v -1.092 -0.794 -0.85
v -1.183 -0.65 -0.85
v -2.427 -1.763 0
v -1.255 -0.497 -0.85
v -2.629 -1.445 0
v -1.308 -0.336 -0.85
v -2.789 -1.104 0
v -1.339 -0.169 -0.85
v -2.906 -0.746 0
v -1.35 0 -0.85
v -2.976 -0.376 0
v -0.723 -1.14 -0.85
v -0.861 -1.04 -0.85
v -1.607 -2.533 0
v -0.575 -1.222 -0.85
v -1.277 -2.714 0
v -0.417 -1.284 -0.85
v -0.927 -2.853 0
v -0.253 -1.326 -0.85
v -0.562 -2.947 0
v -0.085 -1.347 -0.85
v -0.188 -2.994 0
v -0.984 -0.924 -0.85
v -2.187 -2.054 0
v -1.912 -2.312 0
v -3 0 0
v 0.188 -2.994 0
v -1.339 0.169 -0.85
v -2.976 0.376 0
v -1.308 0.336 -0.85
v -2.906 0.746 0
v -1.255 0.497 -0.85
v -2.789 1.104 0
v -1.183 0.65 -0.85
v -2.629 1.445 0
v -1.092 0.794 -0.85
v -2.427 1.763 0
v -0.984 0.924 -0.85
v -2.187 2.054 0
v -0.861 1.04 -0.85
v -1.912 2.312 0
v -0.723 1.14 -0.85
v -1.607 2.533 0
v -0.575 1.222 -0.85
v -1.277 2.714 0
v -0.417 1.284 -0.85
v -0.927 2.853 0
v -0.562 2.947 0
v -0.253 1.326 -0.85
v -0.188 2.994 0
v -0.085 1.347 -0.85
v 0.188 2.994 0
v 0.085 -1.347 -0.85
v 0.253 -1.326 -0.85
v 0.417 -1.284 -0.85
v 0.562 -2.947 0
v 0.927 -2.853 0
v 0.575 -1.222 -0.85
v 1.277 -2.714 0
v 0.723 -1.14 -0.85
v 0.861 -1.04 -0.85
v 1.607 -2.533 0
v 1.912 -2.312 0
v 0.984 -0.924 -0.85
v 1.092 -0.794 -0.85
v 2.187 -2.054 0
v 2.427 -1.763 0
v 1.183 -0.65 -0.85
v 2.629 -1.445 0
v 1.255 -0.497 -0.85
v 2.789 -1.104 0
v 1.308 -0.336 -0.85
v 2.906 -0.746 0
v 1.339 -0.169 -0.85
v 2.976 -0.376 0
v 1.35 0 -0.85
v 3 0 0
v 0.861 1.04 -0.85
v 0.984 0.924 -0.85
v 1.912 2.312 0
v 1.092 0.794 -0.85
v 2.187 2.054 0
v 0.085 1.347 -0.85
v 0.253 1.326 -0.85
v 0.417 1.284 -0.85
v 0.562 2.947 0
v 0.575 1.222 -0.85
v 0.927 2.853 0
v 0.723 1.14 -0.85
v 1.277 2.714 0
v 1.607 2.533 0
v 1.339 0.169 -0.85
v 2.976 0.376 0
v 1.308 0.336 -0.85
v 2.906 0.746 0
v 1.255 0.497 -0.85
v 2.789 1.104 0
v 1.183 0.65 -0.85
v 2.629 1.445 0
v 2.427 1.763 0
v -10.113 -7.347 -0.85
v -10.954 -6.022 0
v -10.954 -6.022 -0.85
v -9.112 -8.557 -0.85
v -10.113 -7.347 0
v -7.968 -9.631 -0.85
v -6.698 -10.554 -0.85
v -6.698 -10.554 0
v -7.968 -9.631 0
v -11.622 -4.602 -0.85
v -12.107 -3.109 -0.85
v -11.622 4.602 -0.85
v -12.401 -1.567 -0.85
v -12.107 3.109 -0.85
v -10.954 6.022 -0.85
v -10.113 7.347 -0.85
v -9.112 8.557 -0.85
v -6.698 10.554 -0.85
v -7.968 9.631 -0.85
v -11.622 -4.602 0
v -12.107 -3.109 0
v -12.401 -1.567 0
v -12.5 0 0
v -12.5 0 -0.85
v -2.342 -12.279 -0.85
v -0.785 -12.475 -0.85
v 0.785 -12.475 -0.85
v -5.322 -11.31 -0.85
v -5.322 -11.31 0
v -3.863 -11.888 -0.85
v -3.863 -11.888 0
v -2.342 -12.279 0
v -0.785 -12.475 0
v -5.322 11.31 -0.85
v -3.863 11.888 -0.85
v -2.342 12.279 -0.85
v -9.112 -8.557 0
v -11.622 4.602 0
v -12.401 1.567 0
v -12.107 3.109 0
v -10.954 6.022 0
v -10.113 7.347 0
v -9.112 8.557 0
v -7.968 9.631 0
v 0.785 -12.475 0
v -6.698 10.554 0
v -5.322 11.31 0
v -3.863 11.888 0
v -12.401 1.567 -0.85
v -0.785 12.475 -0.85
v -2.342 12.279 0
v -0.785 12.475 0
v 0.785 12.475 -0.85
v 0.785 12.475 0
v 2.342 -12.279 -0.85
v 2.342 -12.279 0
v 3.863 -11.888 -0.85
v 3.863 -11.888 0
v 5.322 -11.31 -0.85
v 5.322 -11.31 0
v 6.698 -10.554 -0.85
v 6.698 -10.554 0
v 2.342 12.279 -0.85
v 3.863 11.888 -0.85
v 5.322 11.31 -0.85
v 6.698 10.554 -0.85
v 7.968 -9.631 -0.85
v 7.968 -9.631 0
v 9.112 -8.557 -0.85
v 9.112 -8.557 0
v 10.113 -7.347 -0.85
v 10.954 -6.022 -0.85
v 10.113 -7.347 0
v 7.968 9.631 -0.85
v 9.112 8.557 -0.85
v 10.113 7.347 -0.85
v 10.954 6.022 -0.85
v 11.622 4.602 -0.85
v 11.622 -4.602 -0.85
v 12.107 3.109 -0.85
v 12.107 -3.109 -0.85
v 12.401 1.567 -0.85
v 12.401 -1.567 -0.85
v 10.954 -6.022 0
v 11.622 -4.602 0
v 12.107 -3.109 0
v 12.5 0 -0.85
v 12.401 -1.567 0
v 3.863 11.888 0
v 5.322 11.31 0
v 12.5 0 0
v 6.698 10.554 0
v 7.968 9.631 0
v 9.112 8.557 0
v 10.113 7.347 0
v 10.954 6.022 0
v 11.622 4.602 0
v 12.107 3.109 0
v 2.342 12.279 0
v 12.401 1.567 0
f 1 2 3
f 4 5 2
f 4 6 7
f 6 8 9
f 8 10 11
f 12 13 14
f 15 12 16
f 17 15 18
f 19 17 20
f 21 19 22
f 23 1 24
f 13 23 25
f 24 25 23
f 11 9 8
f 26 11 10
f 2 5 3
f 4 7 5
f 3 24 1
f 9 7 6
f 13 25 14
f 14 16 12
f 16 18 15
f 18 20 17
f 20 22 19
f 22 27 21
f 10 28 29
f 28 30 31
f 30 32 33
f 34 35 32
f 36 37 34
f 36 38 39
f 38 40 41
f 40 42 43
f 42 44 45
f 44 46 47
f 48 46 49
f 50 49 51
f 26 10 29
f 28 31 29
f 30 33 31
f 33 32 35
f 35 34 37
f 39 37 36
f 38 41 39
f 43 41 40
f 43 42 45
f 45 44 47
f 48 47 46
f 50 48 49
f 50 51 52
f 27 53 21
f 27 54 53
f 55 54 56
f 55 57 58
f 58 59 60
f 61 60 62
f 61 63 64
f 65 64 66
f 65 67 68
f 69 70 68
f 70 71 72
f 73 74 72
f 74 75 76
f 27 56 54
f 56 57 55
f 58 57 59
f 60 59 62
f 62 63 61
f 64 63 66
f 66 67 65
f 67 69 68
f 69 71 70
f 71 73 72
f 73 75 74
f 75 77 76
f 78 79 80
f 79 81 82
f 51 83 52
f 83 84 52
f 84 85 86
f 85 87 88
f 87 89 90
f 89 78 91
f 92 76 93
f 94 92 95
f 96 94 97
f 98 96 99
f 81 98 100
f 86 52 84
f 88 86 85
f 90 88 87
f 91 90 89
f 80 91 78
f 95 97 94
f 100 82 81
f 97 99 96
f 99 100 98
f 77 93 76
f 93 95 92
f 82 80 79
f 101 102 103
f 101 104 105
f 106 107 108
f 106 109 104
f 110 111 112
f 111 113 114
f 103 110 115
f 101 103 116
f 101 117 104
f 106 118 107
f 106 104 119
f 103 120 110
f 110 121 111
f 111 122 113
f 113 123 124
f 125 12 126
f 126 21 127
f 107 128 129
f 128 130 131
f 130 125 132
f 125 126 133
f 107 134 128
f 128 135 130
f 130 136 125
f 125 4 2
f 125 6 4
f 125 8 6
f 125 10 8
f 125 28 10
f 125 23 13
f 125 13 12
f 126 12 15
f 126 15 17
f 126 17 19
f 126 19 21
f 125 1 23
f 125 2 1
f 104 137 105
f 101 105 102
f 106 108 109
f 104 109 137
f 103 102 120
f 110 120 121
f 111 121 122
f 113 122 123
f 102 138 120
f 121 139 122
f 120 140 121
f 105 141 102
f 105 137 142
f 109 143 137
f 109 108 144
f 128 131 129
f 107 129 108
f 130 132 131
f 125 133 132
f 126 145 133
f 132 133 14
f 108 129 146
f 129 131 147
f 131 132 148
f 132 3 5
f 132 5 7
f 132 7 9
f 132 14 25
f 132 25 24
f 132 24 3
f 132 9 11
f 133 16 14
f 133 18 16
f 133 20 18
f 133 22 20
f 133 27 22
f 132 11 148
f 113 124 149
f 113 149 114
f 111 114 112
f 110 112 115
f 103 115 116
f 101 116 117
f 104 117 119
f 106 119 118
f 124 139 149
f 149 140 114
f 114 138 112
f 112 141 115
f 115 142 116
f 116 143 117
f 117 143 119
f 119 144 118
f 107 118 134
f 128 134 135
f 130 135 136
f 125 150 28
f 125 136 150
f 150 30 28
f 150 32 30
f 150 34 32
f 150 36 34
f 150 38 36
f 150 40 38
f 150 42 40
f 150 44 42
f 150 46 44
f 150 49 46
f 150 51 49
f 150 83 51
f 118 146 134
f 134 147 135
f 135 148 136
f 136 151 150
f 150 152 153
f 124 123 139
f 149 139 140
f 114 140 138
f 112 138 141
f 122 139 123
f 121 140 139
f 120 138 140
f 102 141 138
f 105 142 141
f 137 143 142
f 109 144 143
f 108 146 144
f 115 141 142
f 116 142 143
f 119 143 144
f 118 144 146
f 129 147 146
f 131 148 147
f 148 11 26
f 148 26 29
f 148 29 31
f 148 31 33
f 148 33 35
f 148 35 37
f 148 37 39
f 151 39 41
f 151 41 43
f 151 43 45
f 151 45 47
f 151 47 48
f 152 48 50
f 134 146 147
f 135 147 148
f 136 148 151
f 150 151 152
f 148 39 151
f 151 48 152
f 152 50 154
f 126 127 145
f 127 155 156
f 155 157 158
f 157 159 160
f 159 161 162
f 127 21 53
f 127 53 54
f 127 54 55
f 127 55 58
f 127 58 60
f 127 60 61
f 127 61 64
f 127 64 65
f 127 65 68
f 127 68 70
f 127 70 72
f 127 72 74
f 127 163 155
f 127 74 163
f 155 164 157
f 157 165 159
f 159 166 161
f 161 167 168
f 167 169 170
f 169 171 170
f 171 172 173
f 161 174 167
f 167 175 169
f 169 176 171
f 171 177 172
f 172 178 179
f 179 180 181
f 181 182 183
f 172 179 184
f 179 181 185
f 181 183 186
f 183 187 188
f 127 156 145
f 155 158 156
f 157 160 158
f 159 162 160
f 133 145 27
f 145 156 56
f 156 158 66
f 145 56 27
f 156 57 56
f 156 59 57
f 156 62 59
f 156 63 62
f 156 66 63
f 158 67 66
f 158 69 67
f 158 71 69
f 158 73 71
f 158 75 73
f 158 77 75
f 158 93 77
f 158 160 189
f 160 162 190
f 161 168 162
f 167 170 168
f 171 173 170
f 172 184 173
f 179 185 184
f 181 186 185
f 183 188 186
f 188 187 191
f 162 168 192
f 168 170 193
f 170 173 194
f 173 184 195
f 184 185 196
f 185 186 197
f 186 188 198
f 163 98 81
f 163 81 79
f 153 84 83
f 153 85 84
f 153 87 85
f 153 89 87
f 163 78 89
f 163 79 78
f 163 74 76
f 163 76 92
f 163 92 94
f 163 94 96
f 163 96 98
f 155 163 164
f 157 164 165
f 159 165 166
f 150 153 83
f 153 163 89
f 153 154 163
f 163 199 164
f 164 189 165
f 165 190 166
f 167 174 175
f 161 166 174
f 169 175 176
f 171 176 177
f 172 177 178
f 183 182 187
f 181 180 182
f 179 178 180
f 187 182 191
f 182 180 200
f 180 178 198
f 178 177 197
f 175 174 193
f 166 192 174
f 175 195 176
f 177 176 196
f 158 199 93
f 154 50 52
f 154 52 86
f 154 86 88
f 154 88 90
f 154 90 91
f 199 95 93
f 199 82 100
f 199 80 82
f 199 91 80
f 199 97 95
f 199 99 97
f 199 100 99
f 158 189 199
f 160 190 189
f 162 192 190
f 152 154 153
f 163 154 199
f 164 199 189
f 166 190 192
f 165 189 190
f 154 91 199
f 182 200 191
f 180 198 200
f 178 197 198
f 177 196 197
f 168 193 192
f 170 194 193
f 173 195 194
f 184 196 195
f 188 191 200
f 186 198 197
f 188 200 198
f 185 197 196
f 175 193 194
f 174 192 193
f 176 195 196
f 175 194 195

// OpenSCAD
$fn = 50;


difference() {
	union() {
		translate(v = [0, 0, -0.8500000000]) {
			cylinder(h = 0.8500000000, r = 12.5000000000);
		}
	}
	union() {
		translate(v = [0, 0, 0]) {
			rotate(a = [0, 0, 0]) {
				difference() {
					union() {
						translate(v = [0, 0, -3.8500000000]) {
							cylinder(h = 3.8500000000, r = 1.0000000000);
						}
						translate(v = [0, 0, -0.8500000000]) {
							cylinder(h = 0.8500000000, r1 = 1.3500000000, r2 = 3.0000000000);
						}
						translate(v = [0, 0, -3.8500000000]) {
							cylinder(h = 3.8500000000, r = 1.3500000000);
						}
						translate(v = [0, 0, -3.8500000000]) {
							cylinder(h = 3.8500000000, r = 1.0000000000);
						}
					}
					union();
				}
			}
		}
	}
}
